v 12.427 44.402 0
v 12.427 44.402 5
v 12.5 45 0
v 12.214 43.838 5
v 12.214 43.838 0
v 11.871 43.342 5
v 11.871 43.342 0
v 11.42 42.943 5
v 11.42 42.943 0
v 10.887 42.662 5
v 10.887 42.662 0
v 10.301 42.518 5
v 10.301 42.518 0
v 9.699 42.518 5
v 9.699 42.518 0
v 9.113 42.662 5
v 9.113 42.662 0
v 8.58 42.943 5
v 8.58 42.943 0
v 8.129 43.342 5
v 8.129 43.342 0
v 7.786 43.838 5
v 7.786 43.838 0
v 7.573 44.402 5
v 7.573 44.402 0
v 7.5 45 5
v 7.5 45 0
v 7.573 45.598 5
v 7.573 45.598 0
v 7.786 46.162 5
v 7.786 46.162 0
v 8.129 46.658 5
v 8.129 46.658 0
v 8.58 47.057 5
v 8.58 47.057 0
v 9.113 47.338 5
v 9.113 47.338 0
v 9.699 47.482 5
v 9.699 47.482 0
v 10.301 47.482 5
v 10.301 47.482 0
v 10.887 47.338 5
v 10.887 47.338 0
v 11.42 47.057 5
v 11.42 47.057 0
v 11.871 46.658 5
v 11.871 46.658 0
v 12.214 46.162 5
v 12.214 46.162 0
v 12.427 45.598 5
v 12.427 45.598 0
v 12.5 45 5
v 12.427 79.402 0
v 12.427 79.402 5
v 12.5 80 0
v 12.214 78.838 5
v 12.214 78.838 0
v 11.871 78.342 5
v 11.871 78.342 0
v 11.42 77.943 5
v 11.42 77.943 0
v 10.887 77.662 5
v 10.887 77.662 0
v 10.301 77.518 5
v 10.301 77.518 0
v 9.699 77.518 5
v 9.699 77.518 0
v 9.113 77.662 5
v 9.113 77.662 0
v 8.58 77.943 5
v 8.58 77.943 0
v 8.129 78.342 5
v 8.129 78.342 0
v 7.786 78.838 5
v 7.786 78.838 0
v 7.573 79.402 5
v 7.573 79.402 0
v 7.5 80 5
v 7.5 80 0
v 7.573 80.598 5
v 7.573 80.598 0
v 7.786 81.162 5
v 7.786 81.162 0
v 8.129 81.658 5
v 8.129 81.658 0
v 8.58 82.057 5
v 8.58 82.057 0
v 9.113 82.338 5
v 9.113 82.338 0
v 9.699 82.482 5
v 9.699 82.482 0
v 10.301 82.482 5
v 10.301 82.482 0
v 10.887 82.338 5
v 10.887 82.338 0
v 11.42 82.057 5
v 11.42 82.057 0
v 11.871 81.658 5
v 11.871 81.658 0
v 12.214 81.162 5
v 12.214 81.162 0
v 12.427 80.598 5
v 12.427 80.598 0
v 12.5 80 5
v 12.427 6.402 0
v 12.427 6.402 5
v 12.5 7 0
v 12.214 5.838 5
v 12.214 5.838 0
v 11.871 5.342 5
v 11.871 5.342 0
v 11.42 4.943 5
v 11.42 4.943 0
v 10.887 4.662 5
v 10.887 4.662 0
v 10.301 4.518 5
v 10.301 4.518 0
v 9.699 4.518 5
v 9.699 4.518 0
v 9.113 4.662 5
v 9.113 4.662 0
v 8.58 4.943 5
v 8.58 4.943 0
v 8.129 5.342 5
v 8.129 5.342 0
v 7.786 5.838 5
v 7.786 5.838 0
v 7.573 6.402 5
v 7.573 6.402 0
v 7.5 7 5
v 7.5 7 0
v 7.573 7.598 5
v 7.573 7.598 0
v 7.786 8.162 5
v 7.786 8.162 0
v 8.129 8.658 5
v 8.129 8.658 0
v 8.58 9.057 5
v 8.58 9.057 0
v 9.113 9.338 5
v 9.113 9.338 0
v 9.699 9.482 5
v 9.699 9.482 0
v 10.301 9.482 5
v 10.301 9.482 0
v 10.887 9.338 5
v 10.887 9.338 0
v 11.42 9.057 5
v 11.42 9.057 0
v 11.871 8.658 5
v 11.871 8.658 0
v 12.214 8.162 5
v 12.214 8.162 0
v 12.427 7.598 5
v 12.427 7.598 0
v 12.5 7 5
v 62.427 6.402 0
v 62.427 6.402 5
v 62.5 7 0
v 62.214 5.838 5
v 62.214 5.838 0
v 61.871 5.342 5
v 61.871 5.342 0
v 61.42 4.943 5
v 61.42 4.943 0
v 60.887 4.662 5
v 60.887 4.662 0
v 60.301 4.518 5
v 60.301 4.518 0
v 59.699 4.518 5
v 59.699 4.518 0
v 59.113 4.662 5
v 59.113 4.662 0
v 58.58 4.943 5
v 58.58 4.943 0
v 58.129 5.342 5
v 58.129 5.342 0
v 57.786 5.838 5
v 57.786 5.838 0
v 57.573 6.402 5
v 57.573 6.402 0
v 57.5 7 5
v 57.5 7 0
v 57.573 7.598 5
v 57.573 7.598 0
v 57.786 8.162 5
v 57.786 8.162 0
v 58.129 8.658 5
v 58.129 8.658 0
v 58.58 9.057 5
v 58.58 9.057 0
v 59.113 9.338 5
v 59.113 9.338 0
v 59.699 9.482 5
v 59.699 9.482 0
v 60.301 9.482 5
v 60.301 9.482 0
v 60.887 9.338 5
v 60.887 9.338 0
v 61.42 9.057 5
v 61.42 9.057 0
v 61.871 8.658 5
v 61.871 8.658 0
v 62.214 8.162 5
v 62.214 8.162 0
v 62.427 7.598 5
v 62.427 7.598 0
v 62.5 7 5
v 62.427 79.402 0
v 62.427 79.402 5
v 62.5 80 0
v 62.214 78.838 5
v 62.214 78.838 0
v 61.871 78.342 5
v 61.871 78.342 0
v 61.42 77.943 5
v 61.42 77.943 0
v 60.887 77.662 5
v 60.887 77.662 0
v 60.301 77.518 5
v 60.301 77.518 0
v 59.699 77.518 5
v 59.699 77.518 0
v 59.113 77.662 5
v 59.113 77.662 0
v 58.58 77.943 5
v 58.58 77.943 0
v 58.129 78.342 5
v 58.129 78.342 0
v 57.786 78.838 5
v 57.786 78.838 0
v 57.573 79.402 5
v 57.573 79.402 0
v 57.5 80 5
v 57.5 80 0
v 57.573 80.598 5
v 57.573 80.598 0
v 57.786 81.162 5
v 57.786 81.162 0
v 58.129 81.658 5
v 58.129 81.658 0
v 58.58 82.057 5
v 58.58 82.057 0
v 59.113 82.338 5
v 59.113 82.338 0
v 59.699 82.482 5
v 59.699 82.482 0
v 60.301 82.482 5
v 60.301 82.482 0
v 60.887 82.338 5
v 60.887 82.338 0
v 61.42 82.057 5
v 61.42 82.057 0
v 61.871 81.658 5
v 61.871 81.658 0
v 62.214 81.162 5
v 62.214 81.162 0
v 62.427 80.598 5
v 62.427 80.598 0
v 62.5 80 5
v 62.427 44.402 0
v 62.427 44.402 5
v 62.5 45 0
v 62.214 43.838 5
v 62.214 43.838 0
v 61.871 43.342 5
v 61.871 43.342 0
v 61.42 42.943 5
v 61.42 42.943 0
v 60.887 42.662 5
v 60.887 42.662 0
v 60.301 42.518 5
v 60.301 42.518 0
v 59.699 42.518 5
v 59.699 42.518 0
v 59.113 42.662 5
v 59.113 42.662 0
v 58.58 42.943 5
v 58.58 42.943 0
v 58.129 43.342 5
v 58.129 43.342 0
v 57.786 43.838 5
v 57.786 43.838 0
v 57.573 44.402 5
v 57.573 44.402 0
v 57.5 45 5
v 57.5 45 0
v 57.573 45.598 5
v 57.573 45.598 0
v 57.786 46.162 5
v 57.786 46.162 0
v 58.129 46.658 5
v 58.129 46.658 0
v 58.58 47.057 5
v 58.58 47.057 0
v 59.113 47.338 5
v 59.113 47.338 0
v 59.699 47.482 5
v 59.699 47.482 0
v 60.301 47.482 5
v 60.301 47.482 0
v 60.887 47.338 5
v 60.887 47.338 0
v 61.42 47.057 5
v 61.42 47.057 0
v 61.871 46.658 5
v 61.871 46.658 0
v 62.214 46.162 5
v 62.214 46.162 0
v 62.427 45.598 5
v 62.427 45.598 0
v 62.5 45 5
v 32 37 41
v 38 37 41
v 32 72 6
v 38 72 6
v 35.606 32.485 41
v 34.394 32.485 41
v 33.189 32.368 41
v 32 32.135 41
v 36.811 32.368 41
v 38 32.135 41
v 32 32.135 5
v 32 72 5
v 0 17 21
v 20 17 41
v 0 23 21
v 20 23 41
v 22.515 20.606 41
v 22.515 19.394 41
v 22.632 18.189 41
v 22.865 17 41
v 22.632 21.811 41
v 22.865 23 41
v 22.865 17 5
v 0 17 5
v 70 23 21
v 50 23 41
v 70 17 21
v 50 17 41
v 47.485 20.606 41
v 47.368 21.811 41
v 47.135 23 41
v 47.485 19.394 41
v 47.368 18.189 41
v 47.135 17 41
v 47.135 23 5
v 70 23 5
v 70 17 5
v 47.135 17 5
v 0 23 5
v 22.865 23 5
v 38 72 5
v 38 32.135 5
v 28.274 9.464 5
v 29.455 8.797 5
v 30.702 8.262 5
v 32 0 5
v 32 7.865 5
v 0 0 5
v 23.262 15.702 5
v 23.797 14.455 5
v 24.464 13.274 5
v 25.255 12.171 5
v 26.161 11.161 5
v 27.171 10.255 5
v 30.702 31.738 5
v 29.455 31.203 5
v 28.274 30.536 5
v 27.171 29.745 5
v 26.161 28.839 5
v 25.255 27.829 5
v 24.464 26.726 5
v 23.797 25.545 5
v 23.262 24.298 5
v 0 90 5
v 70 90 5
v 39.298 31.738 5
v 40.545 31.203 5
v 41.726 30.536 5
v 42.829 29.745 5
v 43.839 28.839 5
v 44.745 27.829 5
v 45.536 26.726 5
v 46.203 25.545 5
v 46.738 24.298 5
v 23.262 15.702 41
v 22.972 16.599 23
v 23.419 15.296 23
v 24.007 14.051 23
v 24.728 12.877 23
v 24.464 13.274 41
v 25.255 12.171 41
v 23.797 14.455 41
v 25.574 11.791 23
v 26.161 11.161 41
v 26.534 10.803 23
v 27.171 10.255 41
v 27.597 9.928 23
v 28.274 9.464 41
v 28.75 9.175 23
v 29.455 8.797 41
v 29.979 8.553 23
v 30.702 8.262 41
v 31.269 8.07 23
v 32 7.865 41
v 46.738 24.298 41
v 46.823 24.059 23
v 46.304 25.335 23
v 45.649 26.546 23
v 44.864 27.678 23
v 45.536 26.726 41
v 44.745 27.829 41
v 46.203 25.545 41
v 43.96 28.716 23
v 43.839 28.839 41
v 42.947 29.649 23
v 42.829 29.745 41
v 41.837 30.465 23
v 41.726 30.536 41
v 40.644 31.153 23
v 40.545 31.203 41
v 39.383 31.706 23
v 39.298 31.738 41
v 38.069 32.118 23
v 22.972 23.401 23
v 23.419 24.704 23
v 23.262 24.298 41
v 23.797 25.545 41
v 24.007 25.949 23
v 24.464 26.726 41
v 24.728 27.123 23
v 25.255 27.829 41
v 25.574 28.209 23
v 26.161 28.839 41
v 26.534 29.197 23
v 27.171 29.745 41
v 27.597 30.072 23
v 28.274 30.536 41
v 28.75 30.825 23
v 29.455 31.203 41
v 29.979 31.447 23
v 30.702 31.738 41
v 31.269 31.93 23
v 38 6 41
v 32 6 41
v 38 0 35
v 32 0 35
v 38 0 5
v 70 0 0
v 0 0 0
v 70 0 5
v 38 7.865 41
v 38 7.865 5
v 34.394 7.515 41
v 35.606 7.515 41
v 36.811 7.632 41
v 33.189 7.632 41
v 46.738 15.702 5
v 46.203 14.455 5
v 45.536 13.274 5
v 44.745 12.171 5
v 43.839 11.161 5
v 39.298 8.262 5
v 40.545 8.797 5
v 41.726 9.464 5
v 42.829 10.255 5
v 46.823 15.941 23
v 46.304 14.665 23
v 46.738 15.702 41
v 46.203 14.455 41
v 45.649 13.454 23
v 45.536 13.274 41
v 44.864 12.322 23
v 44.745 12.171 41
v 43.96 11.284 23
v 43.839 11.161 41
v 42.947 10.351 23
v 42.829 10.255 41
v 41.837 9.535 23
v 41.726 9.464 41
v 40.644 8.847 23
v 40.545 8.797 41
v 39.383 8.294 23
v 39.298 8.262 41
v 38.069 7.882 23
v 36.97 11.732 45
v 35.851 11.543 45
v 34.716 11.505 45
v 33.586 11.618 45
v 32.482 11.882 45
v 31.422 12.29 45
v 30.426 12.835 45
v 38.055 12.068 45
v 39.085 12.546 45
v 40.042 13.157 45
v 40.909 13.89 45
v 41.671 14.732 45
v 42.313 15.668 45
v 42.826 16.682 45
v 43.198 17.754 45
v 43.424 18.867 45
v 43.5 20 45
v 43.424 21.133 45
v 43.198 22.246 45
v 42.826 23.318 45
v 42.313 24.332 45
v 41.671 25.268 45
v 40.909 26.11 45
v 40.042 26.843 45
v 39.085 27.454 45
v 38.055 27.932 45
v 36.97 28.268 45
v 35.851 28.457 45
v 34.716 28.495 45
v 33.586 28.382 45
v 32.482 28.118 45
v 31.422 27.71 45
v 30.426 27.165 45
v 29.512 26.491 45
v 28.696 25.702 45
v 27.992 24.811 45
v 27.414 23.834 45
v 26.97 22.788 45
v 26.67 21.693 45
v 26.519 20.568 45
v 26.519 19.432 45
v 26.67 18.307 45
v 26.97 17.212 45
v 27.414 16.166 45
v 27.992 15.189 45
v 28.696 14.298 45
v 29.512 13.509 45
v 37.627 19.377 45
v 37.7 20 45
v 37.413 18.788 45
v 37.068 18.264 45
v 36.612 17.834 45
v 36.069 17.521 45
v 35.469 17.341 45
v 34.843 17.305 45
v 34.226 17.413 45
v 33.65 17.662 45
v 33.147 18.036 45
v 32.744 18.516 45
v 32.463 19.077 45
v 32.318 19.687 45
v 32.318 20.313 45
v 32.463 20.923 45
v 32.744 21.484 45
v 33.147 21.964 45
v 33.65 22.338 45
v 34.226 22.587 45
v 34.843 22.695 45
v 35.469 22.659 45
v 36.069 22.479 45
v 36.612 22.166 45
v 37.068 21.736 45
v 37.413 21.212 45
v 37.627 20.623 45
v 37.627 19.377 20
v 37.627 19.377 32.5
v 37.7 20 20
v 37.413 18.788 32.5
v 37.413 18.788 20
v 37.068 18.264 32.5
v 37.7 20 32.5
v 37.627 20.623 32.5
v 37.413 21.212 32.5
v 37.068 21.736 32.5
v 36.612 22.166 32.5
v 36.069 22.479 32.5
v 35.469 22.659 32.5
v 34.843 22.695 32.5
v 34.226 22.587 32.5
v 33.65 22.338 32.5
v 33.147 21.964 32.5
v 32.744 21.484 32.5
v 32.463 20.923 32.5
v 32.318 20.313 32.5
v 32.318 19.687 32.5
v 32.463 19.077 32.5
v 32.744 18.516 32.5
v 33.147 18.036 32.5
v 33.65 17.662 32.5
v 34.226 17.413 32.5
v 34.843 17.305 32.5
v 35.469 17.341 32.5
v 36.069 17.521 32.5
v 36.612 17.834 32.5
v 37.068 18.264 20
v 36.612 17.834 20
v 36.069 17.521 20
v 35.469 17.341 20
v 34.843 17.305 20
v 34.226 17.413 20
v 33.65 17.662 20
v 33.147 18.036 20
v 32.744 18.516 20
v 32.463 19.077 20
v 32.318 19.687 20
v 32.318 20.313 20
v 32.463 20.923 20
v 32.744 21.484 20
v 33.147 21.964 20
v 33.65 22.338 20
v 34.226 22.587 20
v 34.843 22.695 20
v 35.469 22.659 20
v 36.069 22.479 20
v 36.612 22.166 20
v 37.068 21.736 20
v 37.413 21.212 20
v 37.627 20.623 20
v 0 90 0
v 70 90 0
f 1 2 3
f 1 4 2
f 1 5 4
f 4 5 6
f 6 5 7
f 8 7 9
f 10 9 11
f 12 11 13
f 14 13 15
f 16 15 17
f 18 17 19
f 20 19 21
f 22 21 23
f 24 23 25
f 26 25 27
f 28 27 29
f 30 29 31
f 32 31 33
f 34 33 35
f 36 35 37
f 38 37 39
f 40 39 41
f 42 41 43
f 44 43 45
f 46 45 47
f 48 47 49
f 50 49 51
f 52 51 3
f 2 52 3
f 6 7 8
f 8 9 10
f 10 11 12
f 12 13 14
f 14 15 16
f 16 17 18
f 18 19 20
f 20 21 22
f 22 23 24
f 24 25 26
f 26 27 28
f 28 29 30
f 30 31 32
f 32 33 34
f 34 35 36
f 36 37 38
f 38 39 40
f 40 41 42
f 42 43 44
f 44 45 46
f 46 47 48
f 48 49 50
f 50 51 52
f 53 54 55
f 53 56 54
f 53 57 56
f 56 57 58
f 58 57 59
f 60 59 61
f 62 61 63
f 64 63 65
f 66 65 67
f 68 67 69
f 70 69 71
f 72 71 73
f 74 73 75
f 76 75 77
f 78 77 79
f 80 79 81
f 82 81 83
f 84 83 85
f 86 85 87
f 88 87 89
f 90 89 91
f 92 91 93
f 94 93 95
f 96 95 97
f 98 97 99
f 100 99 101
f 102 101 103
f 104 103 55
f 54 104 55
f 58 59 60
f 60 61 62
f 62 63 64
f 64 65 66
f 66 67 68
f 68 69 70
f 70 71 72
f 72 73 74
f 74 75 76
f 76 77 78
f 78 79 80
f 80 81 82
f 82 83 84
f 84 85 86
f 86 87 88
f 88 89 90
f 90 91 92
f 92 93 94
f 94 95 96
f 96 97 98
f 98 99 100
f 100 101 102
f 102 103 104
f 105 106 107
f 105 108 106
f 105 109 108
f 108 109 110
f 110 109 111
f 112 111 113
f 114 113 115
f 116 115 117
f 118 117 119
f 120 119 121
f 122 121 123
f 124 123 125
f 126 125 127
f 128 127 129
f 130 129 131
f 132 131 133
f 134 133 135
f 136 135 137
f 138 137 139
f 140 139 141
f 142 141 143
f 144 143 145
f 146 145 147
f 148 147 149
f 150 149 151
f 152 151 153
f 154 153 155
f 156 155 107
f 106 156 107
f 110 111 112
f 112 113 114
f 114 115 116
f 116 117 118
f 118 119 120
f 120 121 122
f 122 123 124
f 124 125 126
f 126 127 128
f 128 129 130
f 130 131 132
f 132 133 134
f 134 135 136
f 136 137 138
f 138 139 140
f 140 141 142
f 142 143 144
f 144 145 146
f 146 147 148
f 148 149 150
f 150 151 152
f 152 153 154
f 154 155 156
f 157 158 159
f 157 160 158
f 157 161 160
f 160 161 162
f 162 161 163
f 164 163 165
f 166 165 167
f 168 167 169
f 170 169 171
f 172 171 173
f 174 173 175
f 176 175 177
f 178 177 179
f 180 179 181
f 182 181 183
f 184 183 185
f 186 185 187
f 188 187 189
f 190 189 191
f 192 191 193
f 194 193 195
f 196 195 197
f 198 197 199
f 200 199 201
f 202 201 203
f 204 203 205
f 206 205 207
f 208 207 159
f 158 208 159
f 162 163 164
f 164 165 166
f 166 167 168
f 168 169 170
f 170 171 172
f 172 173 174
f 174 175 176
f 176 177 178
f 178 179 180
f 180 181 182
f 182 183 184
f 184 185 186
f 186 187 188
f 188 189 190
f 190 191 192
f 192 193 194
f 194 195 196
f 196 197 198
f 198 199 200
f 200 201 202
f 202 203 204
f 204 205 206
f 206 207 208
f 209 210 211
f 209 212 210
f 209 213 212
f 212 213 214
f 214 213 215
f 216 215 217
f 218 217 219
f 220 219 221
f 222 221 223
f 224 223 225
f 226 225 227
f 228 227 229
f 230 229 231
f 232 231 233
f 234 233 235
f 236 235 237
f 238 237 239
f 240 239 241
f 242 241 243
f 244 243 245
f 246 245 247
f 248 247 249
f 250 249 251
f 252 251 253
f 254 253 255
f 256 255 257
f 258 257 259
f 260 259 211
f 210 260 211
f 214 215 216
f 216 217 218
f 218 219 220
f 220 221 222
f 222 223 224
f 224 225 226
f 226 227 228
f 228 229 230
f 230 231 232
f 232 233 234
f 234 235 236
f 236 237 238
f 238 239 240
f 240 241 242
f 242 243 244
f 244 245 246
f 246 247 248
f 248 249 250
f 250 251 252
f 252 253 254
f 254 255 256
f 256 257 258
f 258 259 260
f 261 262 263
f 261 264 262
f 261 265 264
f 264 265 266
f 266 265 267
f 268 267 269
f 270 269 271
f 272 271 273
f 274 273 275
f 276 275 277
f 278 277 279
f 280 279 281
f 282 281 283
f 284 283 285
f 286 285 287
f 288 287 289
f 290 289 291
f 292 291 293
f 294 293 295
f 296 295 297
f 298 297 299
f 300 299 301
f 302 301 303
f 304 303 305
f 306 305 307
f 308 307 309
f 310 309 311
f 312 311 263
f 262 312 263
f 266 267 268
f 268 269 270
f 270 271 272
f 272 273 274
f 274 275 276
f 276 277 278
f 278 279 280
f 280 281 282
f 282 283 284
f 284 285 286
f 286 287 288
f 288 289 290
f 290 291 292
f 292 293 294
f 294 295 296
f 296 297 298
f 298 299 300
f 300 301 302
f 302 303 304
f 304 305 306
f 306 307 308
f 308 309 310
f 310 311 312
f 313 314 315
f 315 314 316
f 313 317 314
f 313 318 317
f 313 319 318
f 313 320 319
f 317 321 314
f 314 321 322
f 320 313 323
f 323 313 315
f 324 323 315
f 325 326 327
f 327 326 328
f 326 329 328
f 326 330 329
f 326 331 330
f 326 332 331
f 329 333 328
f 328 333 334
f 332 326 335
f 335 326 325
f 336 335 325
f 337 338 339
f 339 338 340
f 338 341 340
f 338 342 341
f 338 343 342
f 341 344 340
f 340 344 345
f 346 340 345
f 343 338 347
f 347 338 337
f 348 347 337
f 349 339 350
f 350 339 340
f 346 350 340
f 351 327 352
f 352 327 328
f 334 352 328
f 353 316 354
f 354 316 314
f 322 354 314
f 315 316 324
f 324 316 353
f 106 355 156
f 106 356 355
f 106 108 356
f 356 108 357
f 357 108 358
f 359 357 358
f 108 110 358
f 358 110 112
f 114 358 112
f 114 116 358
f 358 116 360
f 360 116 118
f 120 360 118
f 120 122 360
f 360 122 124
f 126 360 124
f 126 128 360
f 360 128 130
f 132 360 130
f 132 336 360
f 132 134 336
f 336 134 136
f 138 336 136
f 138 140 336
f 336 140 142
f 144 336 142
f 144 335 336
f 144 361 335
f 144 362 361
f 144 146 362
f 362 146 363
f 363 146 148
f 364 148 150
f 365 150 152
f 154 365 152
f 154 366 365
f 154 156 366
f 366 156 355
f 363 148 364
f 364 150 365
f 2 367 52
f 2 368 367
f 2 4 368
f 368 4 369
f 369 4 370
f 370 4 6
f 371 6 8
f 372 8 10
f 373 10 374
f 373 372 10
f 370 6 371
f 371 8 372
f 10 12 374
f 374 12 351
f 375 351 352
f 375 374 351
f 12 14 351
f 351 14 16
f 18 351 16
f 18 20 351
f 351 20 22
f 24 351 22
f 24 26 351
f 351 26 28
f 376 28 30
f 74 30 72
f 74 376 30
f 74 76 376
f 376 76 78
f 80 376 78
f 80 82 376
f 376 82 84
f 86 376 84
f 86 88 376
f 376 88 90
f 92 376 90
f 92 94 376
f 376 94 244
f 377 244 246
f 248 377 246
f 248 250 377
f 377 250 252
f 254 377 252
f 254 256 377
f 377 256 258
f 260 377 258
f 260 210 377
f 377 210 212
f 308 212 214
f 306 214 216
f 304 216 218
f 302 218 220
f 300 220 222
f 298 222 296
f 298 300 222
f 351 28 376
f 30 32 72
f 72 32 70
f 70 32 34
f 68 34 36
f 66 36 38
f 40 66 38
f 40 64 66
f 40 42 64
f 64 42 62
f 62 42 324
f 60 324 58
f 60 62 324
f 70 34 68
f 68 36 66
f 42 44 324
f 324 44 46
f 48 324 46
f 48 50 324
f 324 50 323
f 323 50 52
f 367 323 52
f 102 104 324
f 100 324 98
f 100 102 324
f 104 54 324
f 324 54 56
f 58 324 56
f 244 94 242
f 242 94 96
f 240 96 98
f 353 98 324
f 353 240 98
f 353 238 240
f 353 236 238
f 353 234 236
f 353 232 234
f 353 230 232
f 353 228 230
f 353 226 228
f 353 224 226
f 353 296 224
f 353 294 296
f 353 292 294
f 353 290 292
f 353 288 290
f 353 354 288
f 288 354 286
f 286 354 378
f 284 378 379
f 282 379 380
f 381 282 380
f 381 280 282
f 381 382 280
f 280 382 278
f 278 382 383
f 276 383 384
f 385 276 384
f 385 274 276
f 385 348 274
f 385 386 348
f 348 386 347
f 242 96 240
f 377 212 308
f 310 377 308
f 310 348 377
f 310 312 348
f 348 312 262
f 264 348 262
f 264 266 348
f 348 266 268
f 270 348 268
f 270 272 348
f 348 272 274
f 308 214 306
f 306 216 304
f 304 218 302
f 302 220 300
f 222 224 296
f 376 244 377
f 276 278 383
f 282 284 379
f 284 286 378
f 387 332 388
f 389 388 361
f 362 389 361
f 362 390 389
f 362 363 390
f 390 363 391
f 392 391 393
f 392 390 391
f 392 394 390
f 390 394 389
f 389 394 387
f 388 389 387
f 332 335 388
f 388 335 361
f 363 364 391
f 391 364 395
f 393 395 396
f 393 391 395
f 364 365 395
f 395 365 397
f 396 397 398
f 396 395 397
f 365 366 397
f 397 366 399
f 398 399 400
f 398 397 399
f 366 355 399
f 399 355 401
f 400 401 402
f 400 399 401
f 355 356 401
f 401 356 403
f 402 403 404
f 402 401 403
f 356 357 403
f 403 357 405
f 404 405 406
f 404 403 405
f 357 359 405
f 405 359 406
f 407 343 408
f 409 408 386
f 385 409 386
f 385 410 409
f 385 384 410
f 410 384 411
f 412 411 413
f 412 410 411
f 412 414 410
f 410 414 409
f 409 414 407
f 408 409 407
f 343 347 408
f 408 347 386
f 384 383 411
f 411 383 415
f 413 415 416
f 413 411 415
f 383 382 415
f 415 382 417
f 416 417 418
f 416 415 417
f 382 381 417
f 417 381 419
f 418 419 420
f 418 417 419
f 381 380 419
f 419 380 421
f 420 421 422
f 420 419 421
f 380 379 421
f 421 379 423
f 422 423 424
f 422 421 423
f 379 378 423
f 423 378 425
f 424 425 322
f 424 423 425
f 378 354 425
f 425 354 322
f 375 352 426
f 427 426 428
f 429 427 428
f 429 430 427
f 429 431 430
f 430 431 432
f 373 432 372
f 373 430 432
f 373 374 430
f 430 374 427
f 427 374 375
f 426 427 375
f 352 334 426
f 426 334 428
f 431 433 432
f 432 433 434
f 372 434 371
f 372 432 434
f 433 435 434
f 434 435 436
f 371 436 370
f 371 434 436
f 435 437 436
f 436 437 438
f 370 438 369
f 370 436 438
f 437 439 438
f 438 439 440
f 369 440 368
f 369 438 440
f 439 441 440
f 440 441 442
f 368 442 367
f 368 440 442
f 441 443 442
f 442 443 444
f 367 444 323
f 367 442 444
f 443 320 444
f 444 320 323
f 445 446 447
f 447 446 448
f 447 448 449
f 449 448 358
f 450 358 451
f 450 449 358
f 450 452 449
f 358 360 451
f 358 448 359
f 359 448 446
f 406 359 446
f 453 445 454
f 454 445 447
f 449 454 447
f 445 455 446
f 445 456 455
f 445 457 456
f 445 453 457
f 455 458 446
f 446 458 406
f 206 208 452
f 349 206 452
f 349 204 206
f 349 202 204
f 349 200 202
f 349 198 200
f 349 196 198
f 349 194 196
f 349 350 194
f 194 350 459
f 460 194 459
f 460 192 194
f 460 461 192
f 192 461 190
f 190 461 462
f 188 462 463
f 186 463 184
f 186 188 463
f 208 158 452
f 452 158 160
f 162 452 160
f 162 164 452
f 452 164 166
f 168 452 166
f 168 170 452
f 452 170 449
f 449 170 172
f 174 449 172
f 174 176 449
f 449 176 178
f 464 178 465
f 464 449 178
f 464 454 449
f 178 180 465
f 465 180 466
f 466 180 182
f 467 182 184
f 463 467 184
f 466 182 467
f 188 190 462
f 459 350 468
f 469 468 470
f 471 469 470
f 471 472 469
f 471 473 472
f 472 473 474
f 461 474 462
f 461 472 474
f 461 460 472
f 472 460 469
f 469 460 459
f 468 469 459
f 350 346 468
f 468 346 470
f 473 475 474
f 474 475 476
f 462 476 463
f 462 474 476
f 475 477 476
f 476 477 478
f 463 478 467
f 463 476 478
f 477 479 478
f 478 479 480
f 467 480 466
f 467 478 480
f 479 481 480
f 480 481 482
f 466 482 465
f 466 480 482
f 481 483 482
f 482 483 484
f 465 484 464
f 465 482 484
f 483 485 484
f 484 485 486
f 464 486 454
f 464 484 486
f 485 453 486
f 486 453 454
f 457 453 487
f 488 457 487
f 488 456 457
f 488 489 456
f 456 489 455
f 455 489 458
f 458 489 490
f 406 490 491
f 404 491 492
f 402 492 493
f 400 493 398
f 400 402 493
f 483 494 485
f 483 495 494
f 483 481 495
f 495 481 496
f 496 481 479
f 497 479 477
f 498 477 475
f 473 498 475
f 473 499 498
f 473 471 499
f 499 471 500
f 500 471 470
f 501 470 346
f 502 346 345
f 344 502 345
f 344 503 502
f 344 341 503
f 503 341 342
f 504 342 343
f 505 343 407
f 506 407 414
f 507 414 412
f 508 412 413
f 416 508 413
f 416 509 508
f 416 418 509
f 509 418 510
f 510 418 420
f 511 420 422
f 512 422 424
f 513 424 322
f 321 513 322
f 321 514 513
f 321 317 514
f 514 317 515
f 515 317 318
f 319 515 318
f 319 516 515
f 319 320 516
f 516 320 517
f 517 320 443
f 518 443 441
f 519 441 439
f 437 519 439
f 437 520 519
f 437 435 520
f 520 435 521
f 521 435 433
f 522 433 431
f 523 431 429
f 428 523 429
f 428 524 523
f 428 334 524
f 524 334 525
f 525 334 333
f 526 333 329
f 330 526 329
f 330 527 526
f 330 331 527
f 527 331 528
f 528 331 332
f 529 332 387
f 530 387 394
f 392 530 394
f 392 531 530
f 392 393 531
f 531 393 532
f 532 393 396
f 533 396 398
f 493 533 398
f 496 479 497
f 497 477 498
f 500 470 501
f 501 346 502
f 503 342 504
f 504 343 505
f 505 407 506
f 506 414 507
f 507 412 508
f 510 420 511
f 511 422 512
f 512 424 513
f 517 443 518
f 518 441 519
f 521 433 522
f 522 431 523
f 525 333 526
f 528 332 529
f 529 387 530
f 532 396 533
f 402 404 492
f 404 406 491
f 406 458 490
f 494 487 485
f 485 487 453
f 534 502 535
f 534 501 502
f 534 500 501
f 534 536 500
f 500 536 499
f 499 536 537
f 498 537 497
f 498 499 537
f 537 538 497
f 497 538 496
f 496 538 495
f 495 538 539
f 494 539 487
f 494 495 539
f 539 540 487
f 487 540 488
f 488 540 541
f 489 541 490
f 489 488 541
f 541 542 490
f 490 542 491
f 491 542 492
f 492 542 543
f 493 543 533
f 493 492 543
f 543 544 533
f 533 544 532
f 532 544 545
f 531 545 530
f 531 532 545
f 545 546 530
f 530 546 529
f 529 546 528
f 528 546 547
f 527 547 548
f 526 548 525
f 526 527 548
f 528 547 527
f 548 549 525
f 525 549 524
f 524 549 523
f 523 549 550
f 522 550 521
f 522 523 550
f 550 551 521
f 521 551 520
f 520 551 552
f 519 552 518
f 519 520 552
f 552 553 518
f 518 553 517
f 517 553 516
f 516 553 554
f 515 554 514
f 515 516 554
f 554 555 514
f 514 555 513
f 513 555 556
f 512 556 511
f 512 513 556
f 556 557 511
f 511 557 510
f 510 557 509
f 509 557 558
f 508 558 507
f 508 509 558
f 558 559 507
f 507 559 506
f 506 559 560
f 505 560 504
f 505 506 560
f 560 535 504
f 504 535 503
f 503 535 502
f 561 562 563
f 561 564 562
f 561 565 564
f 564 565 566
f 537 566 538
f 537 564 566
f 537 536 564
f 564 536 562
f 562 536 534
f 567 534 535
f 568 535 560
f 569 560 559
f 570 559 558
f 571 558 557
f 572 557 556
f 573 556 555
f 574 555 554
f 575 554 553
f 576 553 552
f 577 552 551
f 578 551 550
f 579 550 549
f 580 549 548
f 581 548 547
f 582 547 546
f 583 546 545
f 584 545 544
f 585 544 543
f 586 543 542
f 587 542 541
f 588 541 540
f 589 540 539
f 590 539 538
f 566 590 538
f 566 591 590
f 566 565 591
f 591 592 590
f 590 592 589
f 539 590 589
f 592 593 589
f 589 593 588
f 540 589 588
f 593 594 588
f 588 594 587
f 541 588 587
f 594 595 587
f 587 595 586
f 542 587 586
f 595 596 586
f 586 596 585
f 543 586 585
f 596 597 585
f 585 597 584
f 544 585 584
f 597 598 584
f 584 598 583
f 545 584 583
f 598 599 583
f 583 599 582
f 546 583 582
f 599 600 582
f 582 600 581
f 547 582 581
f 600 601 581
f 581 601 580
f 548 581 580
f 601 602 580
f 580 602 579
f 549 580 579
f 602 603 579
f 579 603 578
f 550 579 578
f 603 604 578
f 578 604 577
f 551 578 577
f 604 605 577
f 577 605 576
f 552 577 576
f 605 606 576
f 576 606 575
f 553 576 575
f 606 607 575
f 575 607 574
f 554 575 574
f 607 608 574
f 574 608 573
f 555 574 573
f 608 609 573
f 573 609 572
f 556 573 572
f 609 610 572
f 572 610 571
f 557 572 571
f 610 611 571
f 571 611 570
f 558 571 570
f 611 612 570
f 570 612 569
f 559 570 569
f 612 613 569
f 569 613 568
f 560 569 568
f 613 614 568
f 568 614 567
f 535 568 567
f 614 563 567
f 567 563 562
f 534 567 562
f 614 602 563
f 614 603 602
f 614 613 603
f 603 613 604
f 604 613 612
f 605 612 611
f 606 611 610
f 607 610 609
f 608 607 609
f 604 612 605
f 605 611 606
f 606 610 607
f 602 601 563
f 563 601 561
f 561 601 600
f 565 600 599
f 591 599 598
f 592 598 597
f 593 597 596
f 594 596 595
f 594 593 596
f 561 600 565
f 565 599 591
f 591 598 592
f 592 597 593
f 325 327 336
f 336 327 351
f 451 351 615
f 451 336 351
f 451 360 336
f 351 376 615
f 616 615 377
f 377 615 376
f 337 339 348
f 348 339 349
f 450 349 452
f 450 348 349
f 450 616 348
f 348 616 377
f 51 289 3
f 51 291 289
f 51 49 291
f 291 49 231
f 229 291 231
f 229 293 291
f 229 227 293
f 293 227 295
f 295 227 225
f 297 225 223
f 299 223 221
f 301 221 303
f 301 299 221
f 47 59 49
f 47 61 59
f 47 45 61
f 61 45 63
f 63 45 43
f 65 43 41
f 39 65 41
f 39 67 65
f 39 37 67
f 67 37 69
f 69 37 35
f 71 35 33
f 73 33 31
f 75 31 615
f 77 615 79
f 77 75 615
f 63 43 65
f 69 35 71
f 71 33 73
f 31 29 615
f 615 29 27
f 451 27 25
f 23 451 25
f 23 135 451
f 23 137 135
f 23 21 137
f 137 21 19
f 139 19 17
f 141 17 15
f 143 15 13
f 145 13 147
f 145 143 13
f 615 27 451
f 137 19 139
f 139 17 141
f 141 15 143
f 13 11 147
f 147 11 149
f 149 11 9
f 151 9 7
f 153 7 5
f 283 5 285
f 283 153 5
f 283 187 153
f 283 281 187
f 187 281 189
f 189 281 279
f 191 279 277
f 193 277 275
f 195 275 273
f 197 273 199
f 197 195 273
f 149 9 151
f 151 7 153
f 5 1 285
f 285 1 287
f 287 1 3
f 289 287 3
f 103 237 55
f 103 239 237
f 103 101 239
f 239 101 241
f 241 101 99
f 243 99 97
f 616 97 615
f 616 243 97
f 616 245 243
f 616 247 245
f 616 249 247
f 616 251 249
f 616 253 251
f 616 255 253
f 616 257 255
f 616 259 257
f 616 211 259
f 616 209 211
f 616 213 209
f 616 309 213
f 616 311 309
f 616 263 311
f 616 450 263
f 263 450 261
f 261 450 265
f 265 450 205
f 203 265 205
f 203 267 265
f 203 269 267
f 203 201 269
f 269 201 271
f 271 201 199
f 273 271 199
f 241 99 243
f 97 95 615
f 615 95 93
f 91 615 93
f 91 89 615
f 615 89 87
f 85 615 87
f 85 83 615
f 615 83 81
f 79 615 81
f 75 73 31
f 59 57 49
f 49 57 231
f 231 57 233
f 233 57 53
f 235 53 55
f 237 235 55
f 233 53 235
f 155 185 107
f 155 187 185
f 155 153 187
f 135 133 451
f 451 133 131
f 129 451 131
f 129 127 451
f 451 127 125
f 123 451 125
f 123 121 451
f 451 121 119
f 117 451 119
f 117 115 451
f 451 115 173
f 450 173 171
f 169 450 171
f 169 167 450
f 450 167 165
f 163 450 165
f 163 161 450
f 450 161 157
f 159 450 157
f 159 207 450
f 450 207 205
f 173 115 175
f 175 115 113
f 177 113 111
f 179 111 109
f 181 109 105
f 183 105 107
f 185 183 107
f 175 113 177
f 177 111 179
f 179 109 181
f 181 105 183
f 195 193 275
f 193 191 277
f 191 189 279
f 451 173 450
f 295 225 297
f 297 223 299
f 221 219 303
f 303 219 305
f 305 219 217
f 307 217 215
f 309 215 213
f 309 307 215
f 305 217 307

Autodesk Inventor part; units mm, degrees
ref_plane "YZ Plane" through (0, 0, 0) normal (1, 0, 0) x (0, 1, 0)
ref_plane "XZ Plane" through (0, 0, 0) normal (0, 1, 0) x (-1, 0, 0)
ref_plane "XY Plane" through (0, 0, 0) normal (0, 0, 1) x (1, 0, 0)
sketch "Sketch1" plane through (0, 0, 0) normal (0, 0, 1) x (1, 0, 0)
  line L0 (0, 0) -> (70, 0)
  line L1 (70, 0) -> (70, 90)
  line L2 (70, 90) -> (0, 90)
  line L3 (0, 90) -> (0, 0)
  dimension "d0" = 70
  dimension "d1" = 90
extrude "Extrusion1" add sketch "Sketch1" along normal blind 5
sketch "Sketch2" plane through (0, 0, 5) normal (0, 0, 1) x (1, 0, 0)
  circle A0 centre (35, 20) radius 12.5
  point P0 (0, 0)
  dimension "d4" = 25
extrude "Extrusion2" add sketch "Sketch2" along normal blind 40
sketch "Sketch3" plane through (35, 20, 45) normal (0, 0, 1) x (1, 0, 0)
  circle A0 centre (0, 0) radius 2.7
  point P0 (-35, -20)
  dimension "d7" = 5.4
extrude "Extrusion3" cut sketch "Sketch3" against normal blind 25
chamfer "Chamfer1" distance 4 angle 45 1 edges at (22.5, 20, 45) measured on face at (44.0861, 18.7875, 45)
sketch "Sketch4" plane through (0, 0, 5) normal (0, 0, 1) x (1, 0, 0)
  line L0 (0, 0) -> (70, 0) projected
  line L1 (32, 0) -> (38, 0)
  line L2 (38, 0) -> (38, 14)
  line L3 (38, 14) -> (32, 14)
  line L4 (32, 14) -> (32, 0)
  dimension "d13" = 6
  dimension "d14" = 14
extrude "Extrusion4" add sketch "Sketch4" along normal blind 36
chamfer "Chamfer2" distance 6 angle 45 1 edges at (35, 0, 41) measured on face at (35.3363, 2.5136, 41)
sketch "Sketch5" plane through (0, 0, 5) normal (0, 0, 1) x (1, 0, 0)
  line L0 (32, 72) -> (38, 72)
  line L1 (38, 72) -> (38, 27)
  line L2 (38, 27) -> (32, 27)
  line L3 (32, 27) -> (32, 72)
  line L4 (70, 0) -> (70, 90) projected
  line L5 (70, 23) -> (42, 23)
  line L6 (42, 23) -> (42, 17)
  line L7 (42, 17) -> (70, 17)
  line L8 (70, 17) -> (70, 23)
  line L9 (0, 90) -> (0, 0) projected
  line L10 (0, 23) -> (25.872, 23)
  line L11 (25.872, 23) -> (25.872, 17)
  line L12 (25.872, 17) -> (0, 17)
  line L13 (0, 17) -> (0, 23)
  dimension "d20" = 6
  dimension "d21" = 45
  dimension "d22" = 28
  dimension "d23" = 6
extrude "Extrusion5" add sketch "Sketch5" along normal blind 36
chamfer "Chamfer3" distance 20 angle 45 1 edges at (70, 20, 41) measured on face at (62.5, 20, 41)
chamfer "Chamfer4" distance 20 angle 45 1 edges at (0, 20, 41) measured on face at (7.5136, 20.3363, 41)
chamfer "Chamfer5" distance 35 angle 45 1 edges at (35, 72, 41) measured on face at (34, 72, 17)
sketch "Sketch6" plane through (0, 0, 5) normal (0, 0, 1) x (1, 0, 0)
  circle A0 centre (10, 7) radius 2.5
  circle A1 centre (60, 7) radius 2.5
  circle A2 centre (10, 80) radius 2.5
  circle A3 centre (60, 80) radius 2.5
  circle A4 centre (10, 45) radius 2.5
  circle A5 centre (60, 45) radius 2.5
  point P0 (0, 0)
  dimension "d35" = 5
  dimension "d36" = 5
  dimension "d37" = 5
  dimension "d38" = 5
  dimension "d39" = 5
  dimension "d40" = 5
extrude "Extrusion6" cut sketch "Sketch6" against normal blind 16
properties part number "wing_sail_base_1"
